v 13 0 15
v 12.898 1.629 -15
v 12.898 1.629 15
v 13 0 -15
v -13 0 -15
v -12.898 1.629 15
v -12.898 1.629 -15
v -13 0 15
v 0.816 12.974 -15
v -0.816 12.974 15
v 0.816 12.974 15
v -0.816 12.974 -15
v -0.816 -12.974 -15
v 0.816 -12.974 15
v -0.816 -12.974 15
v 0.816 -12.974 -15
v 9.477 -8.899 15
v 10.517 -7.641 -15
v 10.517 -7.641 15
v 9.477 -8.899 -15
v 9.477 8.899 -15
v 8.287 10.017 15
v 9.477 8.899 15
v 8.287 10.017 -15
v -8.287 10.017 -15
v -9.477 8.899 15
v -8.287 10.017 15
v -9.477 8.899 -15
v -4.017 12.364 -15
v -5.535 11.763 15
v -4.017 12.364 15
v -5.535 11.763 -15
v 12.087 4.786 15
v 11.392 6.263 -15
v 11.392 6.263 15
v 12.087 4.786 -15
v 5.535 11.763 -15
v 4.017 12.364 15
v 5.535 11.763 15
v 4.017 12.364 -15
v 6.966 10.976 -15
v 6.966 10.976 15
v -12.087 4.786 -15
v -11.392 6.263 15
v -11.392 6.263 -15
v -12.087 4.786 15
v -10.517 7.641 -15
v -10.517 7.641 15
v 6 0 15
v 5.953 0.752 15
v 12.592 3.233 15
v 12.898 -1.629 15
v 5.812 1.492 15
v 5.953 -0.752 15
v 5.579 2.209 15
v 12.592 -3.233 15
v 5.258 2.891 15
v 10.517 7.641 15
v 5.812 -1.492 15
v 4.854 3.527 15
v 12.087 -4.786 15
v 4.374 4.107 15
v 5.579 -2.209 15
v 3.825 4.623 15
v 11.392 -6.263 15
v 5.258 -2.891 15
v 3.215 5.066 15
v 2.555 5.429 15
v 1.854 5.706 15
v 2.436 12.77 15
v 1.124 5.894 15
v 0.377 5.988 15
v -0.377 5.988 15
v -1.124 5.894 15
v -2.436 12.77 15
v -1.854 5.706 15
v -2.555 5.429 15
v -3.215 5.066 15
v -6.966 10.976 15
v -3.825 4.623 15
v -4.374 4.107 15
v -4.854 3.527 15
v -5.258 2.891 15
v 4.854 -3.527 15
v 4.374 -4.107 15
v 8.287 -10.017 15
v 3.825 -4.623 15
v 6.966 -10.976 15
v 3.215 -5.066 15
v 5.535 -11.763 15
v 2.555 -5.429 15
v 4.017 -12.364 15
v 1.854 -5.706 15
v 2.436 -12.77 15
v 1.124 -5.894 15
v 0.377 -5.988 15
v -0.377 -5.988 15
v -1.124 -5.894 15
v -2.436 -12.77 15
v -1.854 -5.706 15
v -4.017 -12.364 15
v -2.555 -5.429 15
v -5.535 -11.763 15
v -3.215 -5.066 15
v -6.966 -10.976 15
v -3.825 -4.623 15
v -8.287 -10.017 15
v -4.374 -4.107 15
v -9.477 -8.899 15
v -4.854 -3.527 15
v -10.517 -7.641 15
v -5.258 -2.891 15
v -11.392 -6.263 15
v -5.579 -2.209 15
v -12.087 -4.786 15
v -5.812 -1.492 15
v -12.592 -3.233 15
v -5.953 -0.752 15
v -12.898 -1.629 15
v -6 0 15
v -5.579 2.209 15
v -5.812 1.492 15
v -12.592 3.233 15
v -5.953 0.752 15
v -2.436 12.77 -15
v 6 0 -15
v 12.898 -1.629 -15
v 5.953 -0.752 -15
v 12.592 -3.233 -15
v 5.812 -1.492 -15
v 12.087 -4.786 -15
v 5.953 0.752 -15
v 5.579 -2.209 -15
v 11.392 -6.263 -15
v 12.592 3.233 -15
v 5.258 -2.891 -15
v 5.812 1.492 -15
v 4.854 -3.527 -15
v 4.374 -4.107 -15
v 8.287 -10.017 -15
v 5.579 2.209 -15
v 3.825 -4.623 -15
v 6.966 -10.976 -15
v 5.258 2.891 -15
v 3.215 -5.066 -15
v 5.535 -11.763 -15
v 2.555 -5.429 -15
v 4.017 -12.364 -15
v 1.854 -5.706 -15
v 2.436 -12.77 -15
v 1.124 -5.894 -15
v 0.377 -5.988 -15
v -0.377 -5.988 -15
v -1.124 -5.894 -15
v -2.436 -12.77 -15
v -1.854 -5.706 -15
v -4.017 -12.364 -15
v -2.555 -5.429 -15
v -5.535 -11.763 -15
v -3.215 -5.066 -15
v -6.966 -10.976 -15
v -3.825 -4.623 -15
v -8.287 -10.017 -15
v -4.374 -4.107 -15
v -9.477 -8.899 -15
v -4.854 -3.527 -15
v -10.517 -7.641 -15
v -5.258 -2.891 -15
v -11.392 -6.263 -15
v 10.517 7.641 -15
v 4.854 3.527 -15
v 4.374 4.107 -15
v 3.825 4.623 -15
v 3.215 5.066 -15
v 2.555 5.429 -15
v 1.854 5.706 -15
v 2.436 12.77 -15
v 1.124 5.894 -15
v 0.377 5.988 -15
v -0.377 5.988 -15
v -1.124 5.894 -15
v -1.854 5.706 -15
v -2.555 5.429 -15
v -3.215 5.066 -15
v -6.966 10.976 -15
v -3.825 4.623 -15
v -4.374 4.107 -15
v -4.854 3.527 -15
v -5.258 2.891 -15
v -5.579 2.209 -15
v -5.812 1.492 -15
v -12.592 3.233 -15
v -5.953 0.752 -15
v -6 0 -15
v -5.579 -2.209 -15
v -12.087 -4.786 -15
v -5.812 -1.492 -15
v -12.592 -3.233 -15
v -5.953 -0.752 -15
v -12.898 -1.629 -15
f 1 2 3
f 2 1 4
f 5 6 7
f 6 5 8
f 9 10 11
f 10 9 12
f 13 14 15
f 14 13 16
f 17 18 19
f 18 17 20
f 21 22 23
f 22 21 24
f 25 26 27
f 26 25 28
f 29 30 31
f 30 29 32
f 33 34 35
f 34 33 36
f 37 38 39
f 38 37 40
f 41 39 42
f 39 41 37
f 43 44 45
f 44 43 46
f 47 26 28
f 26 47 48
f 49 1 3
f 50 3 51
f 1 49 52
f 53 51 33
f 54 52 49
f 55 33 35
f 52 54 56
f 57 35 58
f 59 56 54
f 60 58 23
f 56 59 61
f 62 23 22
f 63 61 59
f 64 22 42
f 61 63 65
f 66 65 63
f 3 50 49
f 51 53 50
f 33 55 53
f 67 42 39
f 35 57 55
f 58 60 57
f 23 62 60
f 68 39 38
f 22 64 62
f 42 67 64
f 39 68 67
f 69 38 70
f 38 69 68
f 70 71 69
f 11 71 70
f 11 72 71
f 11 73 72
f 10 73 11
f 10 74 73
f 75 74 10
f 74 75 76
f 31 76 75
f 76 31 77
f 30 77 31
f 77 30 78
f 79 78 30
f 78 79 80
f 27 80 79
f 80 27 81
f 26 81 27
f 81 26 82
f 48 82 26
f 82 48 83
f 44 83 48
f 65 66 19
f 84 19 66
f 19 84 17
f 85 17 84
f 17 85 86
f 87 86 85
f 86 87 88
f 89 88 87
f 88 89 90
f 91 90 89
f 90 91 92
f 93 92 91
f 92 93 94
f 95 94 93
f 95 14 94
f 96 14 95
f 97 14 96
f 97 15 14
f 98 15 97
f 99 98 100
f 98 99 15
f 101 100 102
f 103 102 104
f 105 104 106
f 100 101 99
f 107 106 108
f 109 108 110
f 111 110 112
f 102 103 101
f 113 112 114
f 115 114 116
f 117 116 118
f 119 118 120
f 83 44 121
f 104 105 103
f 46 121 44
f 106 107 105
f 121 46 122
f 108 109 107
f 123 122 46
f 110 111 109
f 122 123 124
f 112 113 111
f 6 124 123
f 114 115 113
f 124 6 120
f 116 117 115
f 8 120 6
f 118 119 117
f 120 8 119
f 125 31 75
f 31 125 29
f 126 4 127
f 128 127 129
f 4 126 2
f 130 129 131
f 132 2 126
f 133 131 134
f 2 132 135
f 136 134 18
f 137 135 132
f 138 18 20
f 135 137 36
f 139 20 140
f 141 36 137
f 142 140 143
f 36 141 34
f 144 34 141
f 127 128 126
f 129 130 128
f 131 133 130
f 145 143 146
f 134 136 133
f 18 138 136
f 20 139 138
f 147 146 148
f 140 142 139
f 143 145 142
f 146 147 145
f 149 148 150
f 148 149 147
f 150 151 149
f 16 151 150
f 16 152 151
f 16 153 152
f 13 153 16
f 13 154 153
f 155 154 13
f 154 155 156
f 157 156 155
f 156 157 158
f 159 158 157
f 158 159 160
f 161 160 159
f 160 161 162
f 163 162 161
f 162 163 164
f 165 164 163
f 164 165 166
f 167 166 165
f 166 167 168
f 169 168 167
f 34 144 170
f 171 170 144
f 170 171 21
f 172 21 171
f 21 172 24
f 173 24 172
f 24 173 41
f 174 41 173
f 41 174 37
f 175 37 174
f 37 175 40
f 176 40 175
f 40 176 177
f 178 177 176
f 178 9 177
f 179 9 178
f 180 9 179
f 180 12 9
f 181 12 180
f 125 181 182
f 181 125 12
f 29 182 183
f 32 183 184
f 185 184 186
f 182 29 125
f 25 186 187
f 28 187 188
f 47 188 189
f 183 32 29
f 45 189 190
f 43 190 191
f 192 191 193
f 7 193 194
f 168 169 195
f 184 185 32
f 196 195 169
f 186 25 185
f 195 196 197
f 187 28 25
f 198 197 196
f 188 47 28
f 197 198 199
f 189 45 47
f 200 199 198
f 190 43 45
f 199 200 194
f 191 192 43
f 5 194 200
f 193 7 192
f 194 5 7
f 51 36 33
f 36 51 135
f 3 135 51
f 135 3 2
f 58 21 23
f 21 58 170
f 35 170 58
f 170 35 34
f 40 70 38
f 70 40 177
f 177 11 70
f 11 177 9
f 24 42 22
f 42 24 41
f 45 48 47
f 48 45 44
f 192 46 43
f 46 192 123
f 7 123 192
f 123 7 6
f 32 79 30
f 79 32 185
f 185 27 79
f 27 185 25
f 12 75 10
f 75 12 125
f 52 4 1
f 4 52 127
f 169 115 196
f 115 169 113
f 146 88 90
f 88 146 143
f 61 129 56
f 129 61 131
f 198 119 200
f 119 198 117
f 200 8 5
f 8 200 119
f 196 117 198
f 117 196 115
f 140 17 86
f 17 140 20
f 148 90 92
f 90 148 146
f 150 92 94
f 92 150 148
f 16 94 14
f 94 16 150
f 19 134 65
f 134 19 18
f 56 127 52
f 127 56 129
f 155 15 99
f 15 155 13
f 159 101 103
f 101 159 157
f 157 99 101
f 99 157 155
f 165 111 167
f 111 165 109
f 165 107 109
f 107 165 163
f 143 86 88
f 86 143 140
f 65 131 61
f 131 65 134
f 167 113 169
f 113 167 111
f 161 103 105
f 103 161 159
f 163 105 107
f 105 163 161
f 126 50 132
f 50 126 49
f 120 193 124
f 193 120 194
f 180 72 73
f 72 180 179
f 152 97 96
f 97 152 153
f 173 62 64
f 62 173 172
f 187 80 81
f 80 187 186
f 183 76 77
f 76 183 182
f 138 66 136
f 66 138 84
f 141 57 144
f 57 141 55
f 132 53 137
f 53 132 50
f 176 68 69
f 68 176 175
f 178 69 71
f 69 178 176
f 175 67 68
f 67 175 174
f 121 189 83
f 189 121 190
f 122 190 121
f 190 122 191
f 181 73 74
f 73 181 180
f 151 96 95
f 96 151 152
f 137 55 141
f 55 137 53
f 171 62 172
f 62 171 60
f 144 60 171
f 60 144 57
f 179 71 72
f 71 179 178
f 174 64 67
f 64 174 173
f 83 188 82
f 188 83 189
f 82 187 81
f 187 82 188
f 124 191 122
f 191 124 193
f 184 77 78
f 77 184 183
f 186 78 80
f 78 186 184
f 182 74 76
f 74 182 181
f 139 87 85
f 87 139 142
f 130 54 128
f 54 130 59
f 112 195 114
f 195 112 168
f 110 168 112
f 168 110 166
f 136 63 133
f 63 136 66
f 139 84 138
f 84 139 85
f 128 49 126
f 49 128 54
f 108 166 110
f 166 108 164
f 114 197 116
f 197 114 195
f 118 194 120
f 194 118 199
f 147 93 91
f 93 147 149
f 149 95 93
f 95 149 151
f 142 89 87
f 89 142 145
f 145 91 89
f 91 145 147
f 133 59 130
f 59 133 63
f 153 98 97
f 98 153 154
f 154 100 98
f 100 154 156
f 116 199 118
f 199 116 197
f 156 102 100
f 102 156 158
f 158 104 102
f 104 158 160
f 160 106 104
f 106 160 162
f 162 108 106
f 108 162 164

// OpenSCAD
$fn = 50;


difference() {
	union() {
		translate(v = [0, 0, -15.0000000000]) {
			cylinder(h = 30, r = 13.0000000000);
		}
	}
	union() {
		translate(v = [0, 0, -100.0000000000]) {
			cylinder(h = 200, r = 6);
		}
	}
}
